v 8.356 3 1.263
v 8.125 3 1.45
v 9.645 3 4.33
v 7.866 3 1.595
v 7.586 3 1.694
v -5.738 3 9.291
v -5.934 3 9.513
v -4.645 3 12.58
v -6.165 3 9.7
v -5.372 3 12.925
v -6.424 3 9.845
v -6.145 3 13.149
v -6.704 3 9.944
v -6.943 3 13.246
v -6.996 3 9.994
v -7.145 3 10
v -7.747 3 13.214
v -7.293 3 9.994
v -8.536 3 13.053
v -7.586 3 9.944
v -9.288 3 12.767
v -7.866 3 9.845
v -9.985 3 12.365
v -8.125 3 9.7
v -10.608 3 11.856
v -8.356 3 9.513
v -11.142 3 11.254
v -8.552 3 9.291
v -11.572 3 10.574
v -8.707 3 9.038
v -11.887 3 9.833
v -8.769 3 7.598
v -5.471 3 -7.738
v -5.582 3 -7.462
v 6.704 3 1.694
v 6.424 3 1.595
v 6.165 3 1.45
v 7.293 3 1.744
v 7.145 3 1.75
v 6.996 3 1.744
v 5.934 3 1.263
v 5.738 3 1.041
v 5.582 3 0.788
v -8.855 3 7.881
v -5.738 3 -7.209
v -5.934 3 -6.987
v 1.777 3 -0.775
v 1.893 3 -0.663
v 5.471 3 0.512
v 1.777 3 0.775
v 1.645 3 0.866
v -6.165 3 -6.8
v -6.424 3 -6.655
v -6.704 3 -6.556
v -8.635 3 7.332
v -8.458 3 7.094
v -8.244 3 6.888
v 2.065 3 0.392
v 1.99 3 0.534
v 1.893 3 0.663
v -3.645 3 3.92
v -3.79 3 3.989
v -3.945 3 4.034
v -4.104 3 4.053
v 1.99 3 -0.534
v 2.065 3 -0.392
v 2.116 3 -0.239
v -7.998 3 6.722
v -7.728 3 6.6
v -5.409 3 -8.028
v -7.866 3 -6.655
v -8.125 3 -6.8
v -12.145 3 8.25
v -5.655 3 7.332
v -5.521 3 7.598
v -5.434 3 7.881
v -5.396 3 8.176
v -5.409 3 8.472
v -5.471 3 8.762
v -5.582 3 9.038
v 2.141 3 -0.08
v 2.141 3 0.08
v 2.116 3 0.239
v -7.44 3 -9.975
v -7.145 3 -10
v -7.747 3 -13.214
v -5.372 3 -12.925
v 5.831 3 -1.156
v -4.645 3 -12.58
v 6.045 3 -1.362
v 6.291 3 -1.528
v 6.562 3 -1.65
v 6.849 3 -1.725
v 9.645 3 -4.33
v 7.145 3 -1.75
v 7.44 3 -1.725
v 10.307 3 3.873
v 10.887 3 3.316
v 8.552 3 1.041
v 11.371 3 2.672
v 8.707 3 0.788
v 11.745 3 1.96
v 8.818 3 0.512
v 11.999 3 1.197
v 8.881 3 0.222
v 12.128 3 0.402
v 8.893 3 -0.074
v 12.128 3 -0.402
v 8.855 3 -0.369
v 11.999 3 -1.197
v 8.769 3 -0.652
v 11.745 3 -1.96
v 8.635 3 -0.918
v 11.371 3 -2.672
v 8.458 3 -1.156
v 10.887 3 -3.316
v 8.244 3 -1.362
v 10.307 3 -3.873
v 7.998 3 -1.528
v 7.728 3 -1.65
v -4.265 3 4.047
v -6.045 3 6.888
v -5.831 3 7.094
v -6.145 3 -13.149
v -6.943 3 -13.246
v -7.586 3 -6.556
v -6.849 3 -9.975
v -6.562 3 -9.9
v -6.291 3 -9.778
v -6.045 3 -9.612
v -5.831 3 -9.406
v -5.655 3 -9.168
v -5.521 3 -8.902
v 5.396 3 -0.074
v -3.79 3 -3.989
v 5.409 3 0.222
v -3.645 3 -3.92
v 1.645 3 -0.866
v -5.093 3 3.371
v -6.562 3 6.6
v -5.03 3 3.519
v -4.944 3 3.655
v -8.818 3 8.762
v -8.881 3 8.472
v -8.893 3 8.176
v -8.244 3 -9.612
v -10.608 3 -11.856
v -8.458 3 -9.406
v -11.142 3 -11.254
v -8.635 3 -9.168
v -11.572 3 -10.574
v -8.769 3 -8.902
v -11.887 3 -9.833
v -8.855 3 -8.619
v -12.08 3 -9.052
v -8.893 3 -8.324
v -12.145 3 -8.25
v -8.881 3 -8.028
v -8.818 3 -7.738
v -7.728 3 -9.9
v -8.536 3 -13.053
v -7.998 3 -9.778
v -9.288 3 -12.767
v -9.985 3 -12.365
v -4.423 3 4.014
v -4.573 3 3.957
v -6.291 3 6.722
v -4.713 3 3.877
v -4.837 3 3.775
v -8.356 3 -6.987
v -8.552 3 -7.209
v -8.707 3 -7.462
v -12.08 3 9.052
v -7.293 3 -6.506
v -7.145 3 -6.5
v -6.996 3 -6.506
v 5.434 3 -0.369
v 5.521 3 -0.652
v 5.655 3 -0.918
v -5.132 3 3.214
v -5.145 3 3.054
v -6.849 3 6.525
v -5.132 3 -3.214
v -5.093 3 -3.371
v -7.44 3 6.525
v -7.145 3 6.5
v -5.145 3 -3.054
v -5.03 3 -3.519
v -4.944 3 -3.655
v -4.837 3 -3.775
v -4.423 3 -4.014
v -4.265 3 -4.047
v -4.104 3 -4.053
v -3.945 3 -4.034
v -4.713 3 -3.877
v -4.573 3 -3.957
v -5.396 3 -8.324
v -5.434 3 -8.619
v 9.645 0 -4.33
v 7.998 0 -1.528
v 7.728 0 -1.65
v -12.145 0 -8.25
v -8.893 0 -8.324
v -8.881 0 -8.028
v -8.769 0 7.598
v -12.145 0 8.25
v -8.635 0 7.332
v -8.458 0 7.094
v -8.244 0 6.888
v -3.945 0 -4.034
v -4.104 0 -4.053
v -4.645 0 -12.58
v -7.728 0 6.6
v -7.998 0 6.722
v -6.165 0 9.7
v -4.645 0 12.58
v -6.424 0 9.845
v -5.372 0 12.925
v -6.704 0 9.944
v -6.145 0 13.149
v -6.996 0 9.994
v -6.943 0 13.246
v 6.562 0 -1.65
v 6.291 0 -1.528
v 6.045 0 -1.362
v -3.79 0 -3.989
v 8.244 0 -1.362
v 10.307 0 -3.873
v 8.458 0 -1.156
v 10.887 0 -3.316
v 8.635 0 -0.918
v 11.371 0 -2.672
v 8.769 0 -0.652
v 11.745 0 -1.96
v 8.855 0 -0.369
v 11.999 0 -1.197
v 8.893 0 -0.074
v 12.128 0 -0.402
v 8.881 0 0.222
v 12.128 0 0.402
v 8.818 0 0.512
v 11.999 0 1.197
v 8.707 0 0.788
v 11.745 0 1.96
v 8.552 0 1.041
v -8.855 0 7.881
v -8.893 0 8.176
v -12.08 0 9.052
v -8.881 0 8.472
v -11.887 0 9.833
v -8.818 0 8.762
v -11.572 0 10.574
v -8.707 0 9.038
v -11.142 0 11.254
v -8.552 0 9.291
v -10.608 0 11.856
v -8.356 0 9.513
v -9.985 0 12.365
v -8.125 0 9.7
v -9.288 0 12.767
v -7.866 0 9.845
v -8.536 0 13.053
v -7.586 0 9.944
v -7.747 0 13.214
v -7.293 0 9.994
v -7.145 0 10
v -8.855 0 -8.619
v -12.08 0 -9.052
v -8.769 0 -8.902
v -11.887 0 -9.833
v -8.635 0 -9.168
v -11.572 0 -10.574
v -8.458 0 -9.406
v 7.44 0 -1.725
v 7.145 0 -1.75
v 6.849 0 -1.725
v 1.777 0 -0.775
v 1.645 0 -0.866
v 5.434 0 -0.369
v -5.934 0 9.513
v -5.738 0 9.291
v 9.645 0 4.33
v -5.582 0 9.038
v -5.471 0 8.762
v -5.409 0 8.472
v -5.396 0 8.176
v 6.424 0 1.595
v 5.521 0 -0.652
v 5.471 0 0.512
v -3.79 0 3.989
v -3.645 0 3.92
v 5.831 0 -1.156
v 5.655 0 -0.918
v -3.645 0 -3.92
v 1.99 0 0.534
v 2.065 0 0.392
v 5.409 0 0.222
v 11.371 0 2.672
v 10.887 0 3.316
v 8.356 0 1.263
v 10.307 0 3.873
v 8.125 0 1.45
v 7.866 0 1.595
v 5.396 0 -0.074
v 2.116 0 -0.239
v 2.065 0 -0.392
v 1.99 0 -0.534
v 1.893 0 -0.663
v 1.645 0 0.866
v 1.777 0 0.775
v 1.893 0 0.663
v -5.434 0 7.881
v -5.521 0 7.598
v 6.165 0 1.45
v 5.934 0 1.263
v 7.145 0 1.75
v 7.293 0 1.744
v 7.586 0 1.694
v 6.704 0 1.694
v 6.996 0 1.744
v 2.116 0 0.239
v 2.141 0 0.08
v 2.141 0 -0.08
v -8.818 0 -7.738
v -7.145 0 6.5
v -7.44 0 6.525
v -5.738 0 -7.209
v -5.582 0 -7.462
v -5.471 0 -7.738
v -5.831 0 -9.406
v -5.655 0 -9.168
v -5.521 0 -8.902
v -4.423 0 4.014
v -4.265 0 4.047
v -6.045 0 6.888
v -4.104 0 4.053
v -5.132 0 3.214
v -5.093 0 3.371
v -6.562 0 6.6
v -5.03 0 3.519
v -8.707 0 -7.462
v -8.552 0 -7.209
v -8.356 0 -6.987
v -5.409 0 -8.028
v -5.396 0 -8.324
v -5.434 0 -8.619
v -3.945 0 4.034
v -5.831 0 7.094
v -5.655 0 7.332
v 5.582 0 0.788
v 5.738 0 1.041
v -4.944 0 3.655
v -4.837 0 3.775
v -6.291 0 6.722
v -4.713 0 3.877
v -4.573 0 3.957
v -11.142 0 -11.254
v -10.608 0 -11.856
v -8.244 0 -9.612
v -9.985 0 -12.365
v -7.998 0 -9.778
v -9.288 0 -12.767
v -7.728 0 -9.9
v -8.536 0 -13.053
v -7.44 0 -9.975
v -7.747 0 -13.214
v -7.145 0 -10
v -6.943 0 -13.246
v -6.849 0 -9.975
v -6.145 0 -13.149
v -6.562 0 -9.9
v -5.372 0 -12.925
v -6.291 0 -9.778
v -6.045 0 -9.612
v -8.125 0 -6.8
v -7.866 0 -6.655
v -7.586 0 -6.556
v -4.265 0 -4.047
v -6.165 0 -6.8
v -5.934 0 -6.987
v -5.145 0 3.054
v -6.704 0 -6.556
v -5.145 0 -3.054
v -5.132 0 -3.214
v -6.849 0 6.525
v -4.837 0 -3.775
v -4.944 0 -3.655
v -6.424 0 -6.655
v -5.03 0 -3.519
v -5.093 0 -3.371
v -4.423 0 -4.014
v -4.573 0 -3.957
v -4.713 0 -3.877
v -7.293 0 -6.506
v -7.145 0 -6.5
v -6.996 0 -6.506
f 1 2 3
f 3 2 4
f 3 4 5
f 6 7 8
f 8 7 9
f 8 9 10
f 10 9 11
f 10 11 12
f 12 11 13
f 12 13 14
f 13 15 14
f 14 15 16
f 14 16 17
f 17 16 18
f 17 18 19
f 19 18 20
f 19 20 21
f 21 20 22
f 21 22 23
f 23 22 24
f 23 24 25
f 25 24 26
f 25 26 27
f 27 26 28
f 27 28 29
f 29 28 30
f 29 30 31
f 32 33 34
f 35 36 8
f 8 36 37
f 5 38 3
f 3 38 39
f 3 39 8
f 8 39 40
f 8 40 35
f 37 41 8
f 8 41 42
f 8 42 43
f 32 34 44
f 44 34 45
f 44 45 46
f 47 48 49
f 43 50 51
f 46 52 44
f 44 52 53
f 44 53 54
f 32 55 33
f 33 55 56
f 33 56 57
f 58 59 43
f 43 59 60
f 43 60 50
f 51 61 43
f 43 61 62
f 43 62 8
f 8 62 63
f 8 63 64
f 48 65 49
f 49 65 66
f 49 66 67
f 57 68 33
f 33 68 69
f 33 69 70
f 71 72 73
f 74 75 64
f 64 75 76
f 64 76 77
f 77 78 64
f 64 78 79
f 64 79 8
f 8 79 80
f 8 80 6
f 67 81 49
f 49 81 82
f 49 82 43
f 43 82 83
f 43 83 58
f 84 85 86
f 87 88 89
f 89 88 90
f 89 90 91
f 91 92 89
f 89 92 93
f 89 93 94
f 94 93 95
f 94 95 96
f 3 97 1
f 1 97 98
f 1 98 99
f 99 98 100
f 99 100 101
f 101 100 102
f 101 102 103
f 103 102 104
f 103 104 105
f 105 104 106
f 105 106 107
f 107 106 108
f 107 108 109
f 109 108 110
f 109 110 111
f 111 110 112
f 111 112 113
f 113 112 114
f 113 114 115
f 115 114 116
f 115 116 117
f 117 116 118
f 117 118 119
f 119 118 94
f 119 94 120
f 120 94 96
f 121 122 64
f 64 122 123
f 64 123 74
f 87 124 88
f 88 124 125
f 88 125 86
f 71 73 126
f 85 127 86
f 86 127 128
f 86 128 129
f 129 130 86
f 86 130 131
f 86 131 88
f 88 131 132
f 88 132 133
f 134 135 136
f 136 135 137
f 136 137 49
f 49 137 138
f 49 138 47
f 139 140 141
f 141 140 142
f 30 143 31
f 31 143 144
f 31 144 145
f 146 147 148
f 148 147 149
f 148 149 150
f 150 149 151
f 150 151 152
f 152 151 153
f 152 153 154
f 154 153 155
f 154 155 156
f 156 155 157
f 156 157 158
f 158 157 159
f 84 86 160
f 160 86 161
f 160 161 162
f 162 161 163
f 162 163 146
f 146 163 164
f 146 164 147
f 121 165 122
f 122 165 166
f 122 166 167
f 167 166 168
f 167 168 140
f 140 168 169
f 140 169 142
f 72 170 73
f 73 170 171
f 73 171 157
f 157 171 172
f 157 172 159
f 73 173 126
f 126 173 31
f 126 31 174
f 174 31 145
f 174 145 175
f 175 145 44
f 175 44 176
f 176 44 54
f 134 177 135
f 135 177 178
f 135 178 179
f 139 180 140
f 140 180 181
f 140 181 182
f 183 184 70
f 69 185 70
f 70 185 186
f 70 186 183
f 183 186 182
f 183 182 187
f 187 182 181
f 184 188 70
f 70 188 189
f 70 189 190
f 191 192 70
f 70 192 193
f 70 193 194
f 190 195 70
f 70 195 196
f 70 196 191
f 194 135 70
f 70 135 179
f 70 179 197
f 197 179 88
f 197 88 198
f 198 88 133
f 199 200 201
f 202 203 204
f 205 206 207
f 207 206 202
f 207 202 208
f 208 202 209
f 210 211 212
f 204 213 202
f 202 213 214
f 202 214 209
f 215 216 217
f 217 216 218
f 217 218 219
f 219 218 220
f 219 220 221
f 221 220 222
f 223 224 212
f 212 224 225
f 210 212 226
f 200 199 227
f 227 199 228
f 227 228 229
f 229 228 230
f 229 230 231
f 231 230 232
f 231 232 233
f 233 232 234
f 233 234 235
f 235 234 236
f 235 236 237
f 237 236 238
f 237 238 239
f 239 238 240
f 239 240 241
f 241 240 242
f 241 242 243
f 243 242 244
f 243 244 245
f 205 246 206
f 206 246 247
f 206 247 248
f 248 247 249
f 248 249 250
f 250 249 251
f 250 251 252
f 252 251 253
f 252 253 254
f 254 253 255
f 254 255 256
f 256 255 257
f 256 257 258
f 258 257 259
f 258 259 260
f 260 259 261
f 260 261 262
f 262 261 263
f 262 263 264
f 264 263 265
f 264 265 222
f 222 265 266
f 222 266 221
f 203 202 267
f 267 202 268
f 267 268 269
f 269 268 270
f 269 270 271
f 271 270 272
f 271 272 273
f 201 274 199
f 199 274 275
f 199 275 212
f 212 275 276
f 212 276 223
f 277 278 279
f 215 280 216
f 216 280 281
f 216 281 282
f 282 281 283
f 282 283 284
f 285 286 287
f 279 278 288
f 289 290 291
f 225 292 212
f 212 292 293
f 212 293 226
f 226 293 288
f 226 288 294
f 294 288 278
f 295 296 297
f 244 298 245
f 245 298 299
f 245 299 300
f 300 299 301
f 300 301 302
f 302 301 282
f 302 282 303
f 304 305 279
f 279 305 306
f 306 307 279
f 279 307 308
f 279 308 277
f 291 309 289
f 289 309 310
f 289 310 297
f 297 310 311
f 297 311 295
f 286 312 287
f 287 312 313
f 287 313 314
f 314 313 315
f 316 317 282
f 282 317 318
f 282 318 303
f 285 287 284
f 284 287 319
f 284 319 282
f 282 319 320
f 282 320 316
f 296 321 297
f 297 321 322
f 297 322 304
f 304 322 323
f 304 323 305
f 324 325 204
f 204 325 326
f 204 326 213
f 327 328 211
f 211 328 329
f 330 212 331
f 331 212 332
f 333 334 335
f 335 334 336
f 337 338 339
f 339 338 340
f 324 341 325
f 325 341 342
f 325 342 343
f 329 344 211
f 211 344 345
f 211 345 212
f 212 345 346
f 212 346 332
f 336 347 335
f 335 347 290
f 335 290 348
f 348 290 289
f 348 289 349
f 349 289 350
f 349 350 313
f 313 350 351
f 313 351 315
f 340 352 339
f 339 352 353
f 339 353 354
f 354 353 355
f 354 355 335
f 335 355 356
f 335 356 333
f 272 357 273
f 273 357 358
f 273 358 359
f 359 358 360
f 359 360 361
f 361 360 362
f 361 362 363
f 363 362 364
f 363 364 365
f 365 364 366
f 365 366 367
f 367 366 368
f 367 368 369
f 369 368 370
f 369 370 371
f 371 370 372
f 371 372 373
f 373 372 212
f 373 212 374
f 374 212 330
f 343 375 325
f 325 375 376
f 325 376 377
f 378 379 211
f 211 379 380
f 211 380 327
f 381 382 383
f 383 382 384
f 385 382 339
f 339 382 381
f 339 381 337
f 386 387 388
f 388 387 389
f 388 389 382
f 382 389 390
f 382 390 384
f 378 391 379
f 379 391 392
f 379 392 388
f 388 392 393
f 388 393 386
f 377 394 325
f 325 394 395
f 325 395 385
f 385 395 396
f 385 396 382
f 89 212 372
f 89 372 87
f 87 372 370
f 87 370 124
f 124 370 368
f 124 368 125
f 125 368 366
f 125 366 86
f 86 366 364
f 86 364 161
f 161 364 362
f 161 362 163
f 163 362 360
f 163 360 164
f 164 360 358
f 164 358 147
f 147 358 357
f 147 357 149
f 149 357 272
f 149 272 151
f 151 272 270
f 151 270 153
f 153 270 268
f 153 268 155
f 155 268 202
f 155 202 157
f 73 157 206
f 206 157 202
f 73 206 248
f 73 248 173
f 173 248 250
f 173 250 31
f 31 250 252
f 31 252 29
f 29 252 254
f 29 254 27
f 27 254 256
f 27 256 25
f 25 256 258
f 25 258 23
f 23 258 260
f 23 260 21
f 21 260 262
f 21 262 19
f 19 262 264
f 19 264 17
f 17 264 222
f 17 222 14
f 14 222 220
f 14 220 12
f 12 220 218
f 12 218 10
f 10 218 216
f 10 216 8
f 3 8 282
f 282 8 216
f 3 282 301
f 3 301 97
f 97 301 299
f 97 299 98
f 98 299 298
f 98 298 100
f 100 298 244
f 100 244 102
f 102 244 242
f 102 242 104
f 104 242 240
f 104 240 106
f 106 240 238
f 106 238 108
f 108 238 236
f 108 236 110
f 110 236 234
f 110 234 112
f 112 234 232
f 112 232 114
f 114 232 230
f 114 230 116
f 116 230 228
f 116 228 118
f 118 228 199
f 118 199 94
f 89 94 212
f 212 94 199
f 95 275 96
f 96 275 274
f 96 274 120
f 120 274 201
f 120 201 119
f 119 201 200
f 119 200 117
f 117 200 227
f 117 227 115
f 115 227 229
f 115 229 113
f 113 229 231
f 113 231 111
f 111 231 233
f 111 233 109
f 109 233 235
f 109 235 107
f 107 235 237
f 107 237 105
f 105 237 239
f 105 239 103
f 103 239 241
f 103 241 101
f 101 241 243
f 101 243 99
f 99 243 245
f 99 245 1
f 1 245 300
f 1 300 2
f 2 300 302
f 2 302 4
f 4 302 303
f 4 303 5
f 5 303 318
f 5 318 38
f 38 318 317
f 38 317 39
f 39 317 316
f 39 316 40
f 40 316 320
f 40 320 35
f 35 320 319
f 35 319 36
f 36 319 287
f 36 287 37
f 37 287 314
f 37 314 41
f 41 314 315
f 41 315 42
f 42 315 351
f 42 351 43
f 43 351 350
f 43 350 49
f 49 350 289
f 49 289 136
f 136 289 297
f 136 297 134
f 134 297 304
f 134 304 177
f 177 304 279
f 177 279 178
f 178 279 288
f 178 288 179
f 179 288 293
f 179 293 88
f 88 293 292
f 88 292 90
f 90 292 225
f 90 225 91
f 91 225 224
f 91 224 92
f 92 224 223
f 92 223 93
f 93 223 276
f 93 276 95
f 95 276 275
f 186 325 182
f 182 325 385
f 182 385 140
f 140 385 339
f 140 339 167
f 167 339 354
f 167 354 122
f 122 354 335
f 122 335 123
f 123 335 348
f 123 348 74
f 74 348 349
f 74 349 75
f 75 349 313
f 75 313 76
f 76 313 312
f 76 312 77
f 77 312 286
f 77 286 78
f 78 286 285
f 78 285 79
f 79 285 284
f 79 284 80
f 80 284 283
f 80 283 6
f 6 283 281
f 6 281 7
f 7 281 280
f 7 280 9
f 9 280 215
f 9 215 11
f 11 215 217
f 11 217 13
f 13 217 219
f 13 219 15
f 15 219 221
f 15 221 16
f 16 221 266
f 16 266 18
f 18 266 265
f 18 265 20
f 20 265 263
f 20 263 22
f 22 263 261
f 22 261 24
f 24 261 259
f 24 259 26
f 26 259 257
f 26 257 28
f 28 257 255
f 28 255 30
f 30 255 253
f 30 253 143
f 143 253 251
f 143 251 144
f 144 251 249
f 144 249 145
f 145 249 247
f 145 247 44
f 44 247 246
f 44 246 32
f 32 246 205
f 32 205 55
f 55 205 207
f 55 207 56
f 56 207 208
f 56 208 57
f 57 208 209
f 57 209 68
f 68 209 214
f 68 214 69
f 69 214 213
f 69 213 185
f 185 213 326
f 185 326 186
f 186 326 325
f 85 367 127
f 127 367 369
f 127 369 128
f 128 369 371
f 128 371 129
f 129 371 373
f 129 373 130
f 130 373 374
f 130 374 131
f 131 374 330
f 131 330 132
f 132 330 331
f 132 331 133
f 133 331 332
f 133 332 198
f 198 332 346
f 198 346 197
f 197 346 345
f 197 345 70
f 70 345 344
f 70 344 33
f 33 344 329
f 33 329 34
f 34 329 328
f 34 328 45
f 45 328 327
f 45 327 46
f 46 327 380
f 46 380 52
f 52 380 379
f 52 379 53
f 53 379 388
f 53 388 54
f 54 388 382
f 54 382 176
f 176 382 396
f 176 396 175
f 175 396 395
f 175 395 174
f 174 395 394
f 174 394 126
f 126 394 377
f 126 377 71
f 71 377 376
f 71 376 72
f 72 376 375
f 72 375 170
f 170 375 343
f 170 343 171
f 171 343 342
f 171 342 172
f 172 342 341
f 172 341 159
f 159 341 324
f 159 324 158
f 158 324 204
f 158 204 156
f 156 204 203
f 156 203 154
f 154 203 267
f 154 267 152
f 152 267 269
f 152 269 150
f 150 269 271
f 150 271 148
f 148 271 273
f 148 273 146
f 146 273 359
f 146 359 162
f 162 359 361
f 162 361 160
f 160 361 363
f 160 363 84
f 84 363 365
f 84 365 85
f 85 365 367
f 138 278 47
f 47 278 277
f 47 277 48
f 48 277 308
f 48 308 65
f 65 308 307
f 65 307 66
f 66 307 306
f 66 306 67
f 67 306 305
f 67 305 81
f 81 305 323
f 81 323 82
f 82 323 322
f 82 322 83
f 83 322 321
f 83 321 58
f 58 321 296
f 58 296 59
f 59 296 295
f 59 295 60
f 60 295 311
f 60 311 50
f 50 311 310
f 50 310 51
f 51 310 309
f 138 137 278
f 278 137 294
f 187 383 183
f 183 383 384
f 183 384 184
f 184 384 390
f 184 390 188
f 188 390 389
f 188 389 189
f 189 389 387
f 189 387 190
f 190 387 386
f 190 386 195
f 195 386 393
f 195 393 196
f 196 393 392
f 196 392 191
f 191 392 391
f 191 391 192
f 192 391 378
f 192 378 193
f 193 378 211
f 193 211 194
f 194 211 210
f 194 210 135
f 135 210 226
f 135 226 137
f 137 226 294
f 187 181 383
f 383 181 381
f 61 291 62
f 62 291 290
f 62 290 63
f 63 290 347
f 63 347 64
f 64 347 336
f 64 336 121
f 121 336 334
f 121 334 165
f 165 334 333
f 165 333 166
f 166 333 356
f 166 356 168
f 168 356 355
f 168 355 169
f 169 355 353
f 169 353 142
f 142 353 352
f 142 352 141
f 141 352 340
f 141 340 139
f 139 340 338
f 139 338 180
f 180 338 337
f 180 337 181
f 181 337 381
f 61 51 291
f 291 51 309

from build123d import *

# Parameters (mm, degrees)
SKETCH3_R           = 1.75
BOSS_EXTRUDE1_DEPTH = 3


with BuildPart() as part:
    # Sketch3 → Boss-Extrude1 (new body)
    with BuildSketch(Plane(origin=(0, 0, 0), x_dir=(1, 0, 0), z_dir=(0, 1, 0))):
        with BuildLine():
            Line((9.644709581, 4.330127019), (-4.644709581, 12.580127019))
            ThreePointArc((-4.644709581, 12.580127019), (-9.644709581, 12.580127019), (-12.144709581, 8.25))
            Line((-12.144709581, 8.25), (-12.144709581, -8.25))
            ThreePointArc((-12.144709581, -8.25), (-9.644709581, -12.580127019), (-4.644709581, -12.580127019))
            Line((-4.644709581, -12.580127019), (9.644709581, -4.330127019))
            ThreePointArc((9.644709581, -4.330127019), (12.144709581, 0), (9.644709581, 4.330127019))
        make_face()
        with Locations((7.144709581, 0)):
            Circle(SKETCH3_R, mode=Mode.SUBTRACT)
        with Locations((-7.144709581, 8.25)):
            Circle(SKETCH3_R, mode=Mode.SUBTRACT)
        with Locations((-7.144709581, -8.25)):
            Circle(SKETCH3_R, mode=Mode.SUBTRACT)
        with BuildLine():
            Line((1.644709581, 0.866025404), (-3.644709581, 3.919872981))
            ThreePointArc((-3.644709581, 3.919872981), (-4.644709581, 3.919872981), (-5.144709581, 3.053847577))
            Line((-5.144709581, 3.053847577), (-5.144709581, -3.053847577))
            ThreePointArc((-5.144709581, -3.053847577), (-4.644709581, -3.919872981), (-3.644709581, -3.919872981))
            Line((-3.644709581, -3.919872981), (1.644709581, -0.866025404))
            ThreePointArc((1.644709581, -0.866025404), (2.144709581, 0), (1.644709581, 0.866025404))
        make_face(mode=Mode.SUBTRACT)
    extrude(amount=BOSS_EXTRUDE1_DEPTH)


solid = part.part
